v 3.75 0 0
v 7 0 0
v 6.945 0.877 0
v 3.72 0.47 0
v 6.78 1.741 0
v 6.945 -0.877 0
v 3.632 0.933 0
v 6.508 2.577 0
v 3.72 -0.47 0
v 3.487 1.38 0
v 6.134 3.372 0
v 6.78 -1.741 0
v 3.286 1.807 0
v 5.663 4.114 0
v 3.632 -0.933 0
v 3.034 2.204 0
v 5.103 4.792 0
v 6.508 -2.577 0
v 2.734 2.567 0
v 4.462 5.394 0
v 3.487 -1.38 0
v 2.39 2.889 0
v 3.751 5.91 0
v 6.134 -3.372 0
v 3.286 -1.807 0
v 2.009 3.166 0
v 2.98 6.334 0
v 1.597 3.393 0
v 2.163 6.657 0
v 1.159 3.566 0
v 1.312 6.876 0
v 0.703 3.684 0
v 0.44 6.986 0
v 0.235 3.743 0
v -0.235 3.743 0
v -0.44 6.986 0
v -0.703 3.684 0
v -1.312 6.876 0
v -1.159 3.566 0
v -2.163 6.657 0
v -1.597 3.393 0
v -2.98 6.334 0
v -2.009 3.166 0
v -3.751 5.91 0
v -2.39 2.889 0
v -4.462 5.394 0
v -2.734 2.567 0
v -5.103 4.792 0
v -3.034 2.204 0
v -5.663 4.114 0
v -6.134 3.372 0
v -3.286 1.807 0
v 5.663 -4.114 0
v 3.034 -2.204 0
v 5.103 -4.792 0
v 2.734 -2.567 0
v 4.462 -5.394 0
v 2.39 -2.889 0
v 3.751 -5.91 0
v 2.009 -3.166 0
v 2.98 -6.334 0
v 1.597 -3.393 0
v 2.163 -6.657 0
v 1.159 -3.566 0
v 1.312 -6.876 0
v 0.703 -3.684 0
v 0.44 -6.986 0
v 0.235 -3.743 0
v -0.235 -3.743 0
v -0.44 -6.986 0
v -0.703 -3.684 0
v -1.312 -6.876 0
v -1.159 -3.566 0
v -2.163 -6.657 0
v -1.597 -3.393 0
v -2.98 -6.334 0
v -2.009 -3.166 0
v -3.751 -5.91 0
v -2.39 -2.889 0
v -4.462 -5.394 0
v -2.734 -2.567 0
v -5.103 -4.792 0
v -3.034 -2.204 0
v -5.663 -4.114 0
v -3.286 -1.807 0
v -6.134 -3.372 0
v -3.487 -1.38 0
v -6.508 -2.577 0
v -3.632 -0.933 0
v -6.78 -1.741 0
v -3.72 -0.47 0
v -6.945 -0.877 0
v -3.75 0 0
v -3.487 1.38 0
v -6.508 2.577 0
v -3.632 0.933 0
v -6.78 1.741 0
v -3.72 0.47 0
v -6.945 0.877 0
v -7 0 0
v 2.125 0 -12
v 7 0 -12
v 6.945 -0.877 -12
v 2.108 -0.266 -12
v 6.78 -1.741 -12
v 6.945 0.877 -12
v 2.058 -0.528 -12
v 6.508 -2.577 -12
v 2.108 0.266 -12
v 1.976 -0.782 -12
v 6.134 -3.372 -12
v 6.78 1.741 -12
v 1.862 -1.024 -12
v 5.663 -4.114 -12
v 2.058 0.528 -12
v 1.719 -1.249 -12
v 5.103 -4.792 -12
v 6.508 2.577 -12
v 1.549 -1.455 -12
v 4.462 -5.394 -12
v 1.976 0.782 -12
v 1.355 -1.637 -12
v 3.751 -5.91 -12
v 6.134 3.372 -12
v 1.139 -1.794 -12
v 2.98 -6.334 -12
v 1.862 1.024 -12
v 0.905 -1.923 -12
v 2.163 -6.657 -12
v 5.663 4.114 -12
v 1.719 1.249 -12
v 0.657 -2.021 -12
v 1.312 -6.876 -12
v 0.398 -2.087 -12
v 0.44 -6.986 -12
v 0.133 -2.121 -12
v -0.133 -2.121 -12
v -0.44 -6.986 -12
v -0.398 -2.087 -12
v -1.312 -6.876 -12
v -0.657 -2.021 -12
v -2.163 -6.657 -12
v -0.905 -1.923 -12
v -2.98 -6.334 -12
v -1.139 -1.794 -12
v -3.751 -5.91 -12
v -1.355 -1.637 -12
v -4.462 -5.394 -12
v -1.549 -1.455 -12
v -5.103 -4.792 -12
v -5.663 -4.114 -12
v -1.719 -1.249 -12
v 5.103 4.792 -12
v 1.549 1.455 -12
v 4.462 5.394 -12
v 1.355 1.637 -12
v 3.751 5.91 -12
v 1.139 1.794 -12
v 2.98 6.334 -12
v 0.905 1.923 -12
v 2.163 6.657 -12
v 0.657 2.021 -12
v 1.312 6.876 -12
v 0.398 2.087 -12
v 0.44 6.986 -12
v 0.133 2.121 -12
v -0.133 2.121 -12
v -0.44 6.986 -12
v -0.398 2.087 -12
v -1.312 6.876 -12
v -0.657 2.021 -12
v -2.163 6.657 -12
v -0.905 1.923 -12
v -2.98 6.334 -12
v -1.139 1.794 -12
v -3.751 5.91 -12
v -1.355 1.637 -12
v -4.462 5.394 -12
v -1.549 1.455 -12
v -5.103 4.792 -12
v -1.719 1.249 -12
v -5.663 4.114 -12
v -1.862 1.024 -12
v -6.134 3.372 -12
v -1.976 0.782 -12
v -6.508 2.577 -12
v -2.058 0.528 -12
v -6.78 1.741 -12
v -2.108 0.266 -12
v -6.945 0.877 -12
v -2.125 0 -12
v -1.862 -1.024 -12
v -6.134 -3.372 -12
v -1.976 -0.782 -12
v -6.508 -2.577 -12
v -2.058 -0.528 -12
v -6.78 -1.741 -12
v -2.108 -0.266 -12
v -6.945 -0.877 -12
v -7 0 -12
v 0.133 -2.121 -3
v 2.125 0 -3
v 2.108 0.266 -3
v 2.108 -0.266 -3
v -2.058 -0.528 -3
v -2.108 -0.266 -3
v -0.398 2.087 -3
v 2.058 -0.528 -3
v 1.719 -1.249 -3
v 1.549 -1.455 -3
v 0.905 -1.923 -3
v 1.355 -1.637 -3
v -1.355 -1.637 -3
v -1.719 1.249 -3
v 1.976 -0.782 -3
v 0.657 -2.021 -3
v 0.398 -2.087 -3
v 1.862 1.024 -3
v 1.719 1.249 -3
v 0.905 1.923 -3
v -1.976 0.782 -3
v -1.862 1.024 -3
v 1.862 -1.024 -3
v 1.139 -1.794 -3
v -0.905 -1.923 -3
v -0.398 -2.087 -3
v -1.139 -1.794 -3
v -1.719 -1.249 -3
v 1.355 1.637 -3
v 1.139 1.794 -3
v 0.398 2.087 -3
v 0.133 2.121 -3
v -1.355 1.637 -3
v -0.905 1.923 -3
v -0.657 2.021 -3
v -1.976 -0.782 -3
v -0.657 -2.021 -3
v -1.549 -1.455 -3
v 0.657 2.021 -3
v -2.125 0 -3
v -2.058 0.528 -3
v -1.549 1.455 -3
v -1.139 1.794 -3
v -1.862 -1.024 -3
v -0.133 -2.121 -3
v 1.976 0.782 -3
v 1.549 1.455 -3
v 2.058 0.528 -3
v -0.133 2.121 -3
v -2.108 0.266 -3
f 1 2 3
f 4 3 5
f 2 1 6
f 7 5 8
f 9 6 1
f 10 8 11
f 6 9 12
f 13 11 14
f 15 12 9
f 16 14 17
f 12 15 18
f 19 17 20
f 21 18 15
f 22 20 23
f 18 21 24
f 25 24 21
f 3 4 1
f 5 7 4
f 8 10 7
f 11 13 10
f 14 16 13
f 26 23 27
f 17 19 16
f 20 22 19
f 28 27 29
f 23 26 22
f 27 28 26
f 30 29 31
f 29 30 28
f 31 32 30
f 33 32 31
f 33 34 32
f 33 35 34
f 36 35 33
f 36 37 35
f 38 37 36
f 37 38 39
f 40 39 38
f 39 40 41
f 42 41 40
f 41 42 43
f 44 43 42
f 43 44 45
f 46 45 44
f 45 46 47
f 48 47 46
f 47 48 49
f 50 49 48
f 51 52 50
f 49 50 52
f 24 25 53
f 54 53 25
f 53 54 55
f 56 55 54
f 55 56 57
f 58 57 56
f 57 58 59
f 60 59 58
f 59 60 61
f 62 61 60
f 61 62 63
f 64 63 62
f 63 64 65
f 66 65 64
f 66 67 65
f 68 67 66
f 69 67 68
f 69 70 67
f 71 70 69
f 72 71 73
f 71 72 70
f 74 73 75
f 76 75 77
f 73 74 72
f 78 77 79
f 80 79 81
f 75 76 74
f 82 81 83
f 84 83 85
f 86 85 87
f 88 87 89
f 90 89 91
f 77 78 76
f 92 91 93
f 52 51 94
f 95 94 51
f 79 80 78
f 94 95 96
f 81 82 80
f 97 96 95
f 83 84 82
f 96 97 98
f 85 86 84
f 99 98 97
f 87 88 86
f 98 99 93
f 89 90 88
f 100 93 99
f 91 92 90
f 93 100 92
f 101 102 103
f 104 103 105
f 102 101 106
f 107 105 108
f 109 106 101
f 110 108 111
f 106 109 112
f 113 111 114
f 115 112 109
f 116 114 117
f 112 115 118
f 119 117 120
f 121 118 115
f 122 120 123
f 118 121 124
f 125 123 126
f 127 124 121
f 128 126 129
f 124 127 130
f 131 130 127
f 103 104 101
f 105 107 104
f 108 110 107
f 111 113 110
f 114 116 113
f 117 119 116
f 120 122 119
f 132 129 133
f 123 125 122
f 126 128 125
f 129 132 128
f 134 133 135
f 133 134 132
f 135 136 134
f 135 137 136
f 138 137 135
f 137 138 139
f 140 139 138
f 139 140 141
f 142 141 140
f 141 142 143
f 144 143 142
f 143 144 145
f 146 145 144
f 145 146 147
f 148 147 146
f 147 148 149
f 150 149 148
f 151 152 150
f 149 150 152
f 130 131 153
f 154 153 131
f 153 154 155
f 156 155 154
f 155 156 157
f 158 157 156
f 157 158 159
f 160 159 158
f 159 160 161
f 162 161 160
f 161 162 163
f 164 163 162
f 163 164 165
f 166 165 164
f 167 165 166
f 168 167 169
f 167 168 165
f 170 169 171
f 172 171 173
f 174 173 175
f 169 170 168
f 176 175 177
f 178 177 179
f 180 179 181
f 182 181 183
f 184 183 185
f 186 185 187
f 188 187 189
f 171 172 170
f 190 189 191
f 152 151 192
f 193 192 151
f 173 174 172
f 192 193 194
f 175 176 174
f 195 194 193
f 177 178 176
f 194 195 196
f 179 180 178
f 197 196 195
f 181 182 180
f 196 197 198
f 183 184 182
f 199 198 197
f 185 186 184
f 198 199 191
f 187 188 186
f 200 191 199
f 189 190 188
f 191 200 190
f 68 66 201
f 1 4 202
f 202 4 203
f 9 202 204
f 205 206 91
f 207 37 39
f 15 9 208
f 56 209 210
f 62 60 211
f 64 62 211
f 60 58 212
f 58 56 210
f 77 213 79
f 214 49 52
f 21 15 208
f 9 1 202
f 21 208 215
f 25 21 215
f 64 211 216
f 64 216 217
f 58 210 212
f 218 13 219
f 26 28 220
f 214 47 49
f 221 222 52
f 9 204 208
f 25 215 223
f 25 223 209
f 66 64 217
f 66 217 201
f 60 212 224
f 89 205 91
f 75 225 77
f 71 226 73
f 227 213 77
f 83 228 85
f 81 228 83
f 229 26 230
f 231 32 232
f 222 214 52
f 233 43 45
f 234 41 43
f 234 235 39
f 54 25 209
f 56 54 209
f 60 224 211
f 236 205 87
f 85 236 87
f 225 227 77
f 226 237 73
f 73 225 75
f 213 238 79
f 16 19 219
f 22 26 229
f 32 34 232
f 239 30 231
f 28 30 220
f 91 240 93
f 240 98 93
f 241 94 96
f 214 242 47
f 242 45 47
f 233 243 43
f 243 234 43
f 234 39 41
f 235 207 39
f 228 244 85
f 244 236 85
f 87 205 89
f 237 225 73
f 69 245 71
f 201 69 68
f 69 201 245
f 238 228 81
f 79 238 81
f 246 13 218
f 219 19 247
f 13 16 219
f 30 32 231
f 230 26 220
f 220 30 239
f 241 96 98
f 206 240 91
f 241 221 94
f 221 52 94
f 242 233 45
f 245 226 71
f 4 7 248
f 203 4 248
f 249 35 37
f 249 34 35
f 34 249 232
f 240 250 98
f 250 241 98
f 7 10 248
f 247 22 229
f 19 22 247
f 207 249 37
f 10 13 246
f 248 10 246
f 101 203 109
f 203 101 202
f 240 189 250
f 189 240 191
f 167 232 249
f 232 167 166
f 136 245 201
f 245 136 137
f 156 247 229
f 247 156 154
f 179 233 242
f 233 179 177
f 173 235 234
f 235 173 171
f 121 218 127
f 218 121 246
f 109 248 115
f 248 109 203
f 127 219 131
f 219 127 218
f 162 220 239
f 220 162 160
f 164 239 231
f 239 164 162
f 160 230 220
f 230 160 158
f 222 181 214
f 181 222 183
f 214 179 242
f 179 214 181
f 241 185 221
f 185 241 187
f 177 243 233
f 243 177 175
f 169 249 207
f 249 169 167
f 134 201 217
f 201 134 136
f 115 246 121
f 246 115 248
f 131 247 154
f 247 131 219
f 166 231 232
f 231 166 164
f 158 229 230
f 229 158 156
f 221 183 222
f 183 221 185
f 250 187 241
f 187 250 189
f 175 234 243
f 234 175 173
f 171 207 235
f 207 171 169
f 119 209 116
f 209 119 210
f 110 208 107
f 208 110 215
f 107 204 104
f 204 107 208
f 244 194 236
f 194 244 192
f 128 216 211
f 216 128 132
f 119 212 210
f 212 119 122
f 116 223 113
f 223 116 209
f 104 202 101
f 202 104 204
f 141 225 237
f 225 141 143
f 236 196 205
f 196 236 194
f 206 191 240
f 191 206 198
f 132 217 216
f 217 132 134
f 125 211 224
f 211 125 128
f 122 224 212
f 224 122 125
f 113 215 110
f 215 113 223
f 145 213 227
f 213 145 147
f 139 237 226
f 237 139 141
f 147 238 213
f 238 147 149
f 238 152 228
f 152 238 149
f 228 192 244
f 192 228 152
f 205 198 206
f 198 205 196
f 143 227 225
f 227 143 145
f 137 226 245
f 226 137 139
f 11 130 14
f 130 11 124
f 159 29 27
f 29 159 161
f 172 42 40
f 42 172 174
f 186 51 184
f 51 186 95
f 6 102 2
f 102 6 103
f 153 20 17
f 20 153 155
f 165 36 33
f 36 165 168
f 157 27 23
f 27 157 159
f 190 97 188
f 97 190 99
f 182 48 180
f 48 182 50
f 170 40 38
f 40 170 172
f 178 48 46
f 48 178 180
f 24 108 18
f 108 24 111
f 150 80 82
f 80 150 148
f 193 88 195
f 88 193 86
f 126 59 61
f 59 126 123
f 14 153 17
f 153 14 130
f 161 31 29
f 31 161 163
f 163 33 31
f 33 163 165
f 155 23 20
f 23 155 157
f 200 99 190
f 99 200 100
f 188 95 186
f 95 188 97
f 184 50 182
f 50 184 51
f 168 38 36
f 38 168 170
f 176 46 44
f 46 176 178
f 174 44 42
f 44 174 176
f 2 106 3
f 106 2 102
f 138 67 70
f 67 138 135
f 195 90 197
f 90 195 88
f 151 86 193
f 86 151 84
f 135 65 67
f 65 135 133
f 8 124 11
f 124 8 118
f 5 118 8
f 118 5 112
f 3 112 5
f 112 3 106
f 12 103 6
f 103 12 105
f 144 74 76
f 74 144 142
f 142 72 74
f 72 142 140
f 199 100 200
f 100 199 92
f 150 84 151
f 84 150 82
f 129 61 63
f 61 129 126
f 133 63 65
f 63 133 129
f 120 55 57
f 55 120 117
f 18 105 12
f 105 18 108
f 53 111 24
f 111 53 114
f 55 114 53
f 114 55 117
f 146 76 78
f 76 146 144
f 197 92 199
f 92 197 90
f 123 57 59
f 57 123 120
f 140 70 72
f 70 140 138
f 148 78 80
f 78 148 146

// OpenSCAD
$fn = 50;


difference() {
	union() {
		translate(v = [0, 0, -12.0000000000]) {
			cylinder(h = 12, r = 7.0000000000);
		}
		cylinder(h = 0, r = 10.0000000000);
	}
	union() {
		translate(v = [0, 0, 0]) {
			rotate(a = [0, 0, 0]) {
				difference() {
					union() {
						#translate(v = [0, 0, -12.0000000000]) {
							cylinder(h = 12, r = 2.0000000000);
						}
						#translate(v = [0, 0, -3]) {
							cylinder(h = 3, r1 = 2.1250000000, r2 = 3.7500000000);
						}
						#translate(v = [0, 0, -12.0000000000]) {
							cylinder(h = 12, r = 2.1250000000);
						}
						#translate(v = [0, 0, -12.0000000000]) {
							cylinder(h = 12, r = 2.0000000000);
						}
					}
					union();
				}
			}
		}
	}
}
